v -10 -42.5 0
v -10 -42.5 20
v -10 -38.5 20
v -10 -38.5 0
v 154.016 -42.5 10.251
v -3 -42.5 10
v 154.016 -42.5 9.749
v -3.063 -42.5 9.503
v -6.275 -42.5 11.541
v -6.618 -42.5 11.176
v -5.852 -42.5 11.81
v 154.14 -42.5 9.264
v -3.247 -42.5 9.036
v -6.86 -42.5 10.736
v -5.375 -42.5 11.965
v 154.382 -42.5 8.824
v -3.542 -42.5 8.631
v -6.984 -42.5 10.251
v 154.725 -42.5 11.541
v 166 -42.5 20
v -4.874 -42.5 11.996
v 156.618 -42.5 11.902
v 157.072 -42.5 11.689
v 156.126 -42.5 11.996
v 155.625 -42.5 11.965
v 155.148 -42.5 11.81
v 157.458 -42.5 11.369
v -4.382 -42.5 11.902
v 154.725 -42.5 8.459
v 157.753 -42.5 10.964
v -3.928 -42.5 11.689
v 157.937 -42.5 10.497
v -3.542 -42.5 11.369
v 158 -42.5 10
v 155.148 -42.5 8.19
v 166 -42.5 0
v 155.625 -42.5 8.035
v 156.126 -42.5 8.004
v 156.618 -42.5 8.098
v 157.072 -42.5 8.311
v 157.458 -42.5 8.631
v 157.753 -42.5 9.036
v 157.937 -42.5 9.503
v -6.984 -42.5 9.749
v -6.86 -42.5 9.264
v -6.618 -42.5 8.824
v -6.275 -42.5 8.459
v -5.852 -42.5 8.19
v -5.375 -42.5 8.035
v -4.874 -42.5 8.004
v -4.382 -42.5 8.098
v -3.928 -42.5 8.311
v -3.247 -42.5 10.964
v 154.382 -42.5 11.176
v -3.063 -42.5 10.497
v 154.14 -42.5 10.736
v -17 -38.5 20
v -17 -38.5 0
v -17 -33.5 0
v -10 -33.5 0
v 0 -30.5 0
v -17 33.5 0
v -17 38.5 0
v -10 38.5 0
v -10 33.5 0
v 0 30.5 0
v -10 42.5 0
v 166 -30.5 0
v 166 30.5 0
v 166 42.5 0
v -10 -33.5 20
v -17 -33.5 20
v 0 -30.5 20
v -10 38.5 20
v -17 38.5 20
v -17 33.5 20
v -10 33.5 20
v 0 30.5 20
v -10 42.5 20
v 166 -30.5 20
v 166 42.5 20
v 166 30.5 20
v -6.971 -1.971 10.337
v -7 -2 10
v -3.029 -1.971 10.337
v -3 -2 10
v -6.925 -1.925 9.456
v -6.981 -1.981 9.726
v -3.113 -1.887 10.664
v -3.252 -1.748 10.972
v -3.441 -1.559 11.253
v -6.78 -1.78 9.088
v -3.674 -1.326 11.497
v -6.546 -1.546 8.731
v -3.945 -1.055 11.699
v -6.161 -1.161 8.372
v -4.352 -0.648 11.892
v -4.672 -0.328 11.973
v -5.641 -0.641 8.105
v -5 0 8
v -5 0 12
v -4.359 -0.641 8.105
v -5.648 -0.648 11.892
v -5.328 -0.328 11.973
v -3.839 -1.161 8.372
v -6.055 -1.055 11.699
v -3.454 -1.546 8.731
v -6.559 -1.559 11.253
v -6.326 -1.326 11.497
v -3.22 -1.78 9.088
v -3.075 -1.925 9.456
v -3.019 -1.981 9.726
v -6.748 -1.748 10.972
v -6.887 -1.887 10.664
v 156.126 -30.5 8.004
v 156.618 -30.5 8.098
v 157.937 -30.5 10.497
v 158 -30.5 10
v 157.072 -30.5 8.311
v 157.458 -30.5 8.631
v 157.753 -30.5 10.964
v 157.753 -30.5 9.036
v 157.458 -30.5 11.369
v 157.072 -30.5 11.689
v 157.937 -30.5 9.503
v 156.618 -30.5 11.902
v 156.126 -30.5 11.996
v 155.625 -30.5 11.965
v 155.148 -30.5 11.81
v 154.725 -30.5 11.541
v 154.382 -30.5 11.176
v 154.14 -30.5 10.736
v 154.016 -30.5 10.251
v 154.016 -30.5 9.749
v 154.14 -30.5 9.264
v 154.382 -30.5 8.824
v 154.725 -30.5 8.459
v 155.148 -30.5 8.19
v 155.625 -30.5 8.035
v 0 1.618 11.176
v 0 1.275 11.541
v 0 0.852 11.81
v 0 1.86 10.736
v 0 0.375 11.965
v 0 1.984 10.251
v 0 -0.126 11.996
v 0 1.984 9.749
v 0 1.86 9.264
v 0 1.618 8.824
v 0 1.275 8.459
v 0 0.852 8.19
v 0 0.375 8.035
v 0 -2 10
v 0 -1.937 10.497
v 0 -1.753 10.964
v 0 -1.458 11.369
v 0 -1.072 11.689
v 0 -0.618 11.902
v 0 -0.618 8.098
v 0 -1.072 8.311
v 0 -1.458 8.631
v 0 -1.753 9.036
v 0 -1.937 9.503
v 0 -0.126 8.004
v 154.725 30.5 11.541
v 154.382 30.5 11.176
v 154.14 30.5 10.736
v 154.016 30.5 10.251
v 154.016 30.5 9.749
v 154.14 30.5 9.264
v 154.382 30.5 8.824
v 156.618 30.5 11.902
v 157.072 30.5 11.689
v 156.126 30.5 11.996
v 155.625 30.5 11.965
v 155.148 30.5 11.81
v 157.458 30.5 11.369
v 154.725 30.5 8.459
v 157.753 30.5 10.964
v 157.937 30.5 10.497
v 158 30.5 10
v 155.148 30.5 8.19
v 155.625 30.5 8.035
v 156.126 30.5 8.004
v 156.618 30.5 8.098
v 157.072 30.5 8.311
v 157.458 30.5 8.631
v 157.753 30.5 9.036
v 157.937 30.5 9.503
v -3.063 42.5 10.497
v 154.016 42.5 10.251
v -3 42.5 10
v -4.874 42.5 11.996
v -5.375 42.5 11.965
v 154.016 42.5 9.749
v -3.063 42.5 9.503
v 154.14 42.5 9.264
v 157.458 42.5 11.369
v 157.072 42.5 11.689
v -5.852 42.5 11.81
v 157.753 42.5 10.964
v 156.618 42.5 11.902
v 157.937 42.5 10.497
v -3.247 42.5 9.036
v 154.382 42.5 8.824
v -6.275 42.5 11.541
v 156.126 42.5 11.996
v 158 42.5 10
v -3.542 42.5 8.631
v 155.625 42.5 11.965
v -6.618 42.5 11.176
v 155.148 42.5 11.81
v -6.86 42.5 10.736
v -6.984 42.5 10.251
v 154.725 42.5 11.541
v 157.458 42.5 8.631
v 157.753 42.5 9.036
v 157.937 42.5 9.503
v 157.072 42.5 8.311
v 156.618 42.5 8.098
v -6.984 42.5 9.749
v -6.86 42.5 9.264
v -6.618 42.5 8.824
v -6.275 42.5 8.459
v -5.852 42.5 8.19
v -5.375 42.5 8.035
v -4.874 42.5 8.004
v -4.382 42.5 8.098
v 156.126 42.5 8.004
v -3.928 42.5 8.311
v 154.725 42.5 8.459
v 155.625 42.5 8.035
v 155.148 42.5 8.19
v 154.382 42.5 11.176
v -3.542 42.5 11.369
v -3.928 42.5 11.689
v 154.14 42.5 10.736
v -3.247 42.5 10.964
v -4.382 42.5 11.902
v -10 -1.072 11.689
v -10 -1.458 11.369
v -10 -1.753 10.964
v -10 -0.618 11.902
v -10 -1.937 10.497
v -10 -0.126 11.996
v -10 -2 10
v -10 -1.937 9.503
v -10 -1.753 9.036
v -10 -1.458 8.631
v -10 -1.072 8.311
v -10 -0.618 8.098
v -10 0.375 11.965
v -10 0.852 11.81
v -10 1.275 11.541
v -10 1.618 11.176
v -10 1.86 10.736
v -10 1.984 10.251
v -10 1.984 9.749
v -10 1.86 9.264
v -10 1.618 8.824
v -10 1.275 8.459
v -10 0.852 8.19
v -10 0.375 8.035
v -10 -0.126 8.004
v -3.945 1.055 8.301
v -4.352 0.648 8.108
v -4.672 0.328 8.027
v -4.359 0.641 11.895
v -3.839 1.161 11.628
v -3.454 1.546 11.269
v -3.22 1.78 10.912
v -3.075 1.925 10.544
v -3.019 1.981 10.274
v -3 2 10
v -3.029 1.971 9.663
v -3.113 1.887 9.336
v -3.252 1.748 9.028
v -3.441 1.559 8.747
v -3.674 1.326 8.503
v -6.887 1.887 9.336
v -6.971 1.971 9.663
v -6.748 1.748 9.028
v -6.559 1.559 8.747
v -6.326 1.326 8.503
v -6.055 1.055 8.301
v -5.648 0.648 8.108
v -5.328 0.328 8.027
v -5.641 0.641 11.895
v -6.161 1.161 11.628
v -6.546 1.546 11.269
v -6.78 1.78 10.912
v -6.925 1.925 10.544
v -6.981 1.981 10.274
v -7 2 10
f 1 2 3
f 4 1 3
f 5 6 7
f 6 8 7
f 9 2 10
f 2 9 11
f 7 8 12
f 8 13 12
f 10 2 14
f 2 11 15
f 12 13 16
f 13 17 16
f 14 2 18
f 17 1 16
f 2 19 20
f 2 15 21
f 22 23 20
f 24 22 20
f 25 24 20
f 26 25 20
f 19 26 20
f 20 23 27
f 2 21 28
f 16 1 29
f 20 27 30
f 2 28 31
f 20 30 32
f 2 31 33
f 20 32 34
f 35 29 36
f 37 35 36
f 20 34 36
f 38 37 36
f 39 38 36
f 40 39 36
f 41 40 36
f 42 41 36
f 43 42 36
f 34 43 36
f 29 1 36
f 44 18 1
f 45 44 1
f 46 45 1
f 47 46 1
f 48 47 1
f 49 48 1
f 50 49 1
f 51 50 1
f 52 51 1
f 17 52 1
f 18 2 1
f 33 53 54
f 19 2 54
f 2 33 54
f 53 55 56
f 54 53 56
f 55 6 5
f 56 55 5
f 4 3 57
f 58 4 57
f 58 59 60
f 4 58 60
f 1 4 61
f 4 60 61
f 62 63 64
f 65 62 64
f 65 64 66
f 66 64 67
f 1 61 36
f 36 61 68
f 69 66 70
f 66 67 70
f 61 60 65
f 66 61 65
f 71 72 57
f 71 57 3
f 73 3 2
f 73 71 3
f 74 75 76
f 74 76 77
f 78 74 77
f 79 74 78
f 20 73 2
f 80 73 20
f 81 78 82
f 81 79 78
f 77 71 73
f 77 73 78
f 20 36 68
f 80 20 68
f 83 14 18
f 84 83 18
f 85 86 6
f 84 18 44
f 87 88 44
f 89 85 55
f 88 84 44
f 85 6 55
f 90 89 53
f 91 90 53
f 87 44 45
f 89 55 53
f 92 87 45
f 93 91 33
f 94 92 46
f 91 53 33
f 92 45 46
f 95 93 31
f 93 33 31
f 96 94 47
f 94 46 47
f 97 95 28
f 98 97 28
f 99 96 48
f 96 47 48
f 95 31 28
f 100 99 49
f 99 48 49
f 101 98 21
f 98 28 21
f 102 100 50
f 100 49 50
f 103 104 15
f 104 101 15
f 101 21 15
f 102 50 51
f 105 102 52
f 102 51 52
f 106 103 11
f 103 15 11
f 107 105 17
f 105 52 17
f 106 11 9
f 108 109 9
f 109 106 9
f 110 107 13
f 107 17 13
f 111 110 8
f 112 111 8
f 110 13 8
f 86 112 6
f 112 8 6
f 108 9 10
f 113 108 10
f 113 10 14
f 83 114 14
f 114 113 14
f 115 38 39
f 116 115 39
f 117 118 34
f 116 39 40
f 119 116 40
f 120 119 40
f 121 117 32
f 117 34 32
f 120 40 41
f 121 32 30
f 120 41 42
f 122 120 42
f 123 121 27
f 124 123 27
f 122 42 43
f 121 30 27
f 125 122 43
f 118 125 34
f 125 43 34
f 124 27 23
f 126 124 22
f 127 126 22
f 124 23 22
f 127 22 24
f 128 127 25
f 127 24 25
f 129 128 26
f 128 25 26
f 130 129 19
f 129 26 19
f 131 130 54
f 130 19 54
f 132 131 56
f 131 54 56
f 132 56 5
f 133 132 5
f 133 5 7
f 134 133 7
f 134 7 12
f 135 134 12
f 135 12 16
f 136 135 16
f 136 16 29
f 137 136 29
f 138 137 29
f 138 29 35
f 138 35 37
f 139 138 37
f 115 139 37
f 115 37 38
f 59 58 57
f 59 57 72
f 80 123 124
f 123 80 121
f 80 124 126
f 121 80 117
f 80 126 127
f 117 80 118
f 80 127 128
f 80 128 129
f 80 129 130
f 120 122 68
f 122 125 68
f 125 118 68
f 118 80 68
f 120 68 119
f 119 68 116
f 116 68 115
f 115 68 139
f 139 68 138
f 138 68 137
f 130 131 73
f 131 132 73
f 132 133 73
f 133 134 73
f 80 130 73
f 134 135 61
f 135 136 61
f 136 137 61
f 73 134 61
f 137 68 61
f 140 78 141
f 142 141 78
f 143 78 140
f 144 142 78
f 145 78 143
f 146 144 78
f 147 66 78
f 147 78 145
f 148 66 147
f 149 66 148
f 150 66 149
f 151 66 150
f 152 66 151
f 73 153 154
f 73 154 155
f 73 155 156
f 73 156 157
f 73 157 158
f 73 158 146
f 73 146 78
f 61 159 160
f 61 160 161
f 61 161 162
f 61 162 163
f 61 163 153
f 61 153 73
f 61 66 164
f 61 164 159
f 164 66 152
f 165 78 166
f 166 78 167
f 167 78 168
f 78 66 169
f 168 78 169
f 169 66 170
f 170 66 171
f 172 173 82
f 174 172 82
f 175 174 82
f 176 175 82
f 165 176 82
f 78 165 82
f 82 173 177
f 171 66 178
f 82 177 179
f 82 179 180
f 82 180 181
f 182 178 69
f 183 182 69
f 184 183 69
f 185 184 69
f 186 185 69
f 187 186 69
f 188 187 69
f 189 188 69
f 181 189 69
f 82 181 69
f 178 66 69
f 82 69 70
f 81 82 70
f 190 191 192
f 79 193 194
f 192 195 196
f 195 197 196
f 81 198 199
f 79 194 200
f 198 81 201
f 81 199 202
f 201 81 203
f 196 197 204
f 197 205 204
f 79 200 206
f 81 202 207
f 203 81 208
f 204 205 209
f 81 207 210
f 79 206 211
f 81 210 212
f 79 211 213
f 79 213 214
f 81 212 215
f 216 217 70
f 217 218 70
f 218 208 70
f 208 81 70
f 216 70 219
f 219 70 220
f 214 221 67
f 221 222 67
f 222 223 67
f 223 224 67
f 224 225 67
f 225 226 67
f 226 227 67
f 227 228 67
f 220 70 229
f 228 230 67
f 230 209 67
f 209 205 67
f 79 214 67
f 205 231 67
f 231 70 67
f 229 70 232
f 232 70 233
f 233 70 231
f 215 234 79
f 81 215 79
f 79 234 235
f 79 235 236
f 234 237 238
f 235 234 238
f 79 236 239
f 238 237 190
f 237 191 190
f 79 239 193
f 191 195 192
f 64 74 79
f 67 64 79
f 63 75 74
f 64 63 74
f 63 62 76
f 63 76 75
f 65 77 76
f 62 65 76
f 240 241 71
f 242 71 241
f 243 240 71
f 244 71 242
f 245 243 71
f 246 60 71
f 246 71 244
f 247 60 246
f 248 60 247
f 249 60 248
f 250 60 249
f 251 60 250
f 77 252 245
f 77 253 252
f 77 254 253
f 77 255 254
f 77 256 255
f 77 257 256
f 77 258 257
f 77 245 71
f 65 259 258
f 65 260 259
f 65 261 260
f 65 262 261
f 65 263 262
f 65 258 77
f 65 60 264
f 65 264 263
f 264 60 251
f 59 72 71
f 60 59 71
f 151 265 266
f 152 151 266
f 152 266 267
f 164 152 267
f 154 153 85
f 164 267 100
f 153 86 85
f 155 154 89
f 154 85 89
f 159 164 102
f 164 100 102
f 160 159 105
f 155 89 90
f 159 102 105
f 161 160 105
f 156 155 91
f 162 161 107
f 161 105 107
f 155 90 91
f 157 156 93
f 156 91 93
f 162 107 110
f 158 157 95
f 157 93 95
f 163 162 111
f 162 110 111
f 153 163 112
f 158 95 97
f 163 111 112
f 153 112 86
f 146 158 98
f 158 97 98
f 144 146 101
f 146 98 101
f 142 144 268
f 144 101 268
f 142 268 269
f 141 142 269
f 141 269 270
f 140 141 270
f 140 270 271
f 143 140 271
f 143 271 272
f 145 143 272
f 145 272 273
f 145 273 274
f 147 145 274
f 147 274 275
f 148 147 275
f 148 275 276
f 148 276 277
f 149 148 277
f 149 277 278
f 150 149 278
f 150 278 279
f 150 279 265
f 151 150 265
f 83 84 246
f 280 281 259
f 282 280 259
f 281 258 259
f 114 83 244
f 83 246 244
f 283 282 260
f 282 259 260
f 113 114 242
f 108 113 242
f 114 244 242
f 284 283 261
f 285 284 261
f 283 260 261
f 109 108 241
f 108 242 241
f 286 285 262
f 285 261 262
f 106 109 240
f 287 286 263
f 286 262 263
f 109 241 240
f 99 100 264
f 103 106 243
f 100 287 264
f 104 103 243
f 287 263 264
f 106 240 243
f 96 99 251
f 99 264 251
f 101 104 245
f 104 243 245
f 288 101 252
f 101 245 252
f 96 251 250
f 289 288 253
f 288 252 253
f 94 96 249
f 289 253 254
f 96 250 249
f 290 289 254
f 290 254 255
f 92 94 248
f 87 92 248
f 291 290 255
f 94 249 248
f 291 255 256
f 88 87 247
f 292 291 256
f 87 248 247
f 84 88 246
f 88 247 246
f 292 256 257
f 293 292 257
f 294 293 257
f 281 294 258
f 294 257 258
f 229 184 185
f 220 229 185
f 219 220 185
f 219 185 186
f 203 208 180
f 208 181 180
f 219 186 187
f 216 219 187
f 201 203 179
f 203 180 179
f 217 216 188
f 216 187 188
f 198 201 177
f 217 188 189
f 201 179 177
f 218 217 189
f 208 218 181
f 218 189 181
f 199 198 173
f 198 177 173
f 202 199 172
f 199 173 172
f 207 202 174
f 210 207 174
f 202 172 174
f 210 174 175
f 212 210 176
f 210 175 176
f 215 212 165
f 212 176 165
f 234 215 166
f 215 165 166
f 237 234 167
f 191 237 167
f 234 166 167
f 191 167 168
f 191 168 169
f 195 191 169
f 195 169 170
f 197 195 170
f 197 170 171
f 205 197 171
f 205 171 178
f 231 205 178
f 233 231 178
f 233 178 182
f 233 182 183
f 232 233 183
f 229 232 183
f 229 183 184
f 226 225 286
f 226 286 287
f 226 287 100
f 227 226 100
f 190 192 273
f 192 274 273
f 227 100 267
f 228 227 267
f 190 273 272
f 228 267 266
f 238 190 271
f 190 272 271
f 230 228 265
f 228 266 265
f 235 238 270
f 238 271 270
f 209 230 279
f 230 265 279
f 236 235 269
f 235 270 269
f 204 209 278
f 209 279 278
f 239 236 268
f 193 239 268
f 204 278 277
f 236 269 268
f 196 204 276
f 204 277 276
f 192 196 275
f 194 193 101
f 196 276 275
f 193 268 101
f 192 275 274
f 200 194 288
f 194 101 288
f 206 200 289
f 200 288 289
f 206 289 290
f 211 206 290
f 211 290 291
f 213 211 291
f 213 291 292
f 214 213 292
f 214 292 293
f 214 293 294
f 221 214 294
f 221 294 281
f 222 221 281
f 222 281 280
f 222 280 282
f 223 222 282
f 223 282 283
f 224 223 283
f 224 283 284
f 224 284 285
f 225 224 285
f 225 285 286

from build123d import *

# Parameters (mm, degrees)
PAD_DEPTH       = 20
SKETCH004_R     = 2
POCKET002_DEPTH = 176.001
SKETCH005_R     = 2
POCKET003_DEPTH = 85.001


with BuildPart() as part:
    # Sketch → Pad (new body)
    with BuildSketch(Plane.XY):
        Polygon((-10, -42.5), (166, -42.5), (166, -30.5), (0, -30.5), (0, 30.5), (166, 30.5), (166, 42.5), (-10, 42.5), (-10, 38.5), (-17, 38.5), (-17, 33.5), (-10, 33.5), (-10, -33.5), (-17, -33.5), (-17, -38.5), (-10, -38.5), align=None)
    extrude(amount=PAD_DEPTH)

    # Sketch004 → Pocket002 (cut, through all)
    with BuildSketch(Plane(origin=(-10, 0, 0), x_dir=(0, -1, 0), z_dir=(-1, 0, 0))):
        with Locations((0, 10)):
            Circle(SKETCH004_R)
    extrude(amount=-POCKET002_DEPTH, mode=Mode.SUBTRACT)

    # Sketch005 → Pocket003 (cut, through all)
    with BuildSketch(Plane.XZ.offset(42.5)):
        with Locations((-5, 10)):
            Circle(SKETCH005_R)
        with Locations((156, 10)):
            Circle(SKETCH005_R)
    extrude(amount=-POCKET003_DEPTH, mode=Mode.SUBTRACT)


solid = part.part
